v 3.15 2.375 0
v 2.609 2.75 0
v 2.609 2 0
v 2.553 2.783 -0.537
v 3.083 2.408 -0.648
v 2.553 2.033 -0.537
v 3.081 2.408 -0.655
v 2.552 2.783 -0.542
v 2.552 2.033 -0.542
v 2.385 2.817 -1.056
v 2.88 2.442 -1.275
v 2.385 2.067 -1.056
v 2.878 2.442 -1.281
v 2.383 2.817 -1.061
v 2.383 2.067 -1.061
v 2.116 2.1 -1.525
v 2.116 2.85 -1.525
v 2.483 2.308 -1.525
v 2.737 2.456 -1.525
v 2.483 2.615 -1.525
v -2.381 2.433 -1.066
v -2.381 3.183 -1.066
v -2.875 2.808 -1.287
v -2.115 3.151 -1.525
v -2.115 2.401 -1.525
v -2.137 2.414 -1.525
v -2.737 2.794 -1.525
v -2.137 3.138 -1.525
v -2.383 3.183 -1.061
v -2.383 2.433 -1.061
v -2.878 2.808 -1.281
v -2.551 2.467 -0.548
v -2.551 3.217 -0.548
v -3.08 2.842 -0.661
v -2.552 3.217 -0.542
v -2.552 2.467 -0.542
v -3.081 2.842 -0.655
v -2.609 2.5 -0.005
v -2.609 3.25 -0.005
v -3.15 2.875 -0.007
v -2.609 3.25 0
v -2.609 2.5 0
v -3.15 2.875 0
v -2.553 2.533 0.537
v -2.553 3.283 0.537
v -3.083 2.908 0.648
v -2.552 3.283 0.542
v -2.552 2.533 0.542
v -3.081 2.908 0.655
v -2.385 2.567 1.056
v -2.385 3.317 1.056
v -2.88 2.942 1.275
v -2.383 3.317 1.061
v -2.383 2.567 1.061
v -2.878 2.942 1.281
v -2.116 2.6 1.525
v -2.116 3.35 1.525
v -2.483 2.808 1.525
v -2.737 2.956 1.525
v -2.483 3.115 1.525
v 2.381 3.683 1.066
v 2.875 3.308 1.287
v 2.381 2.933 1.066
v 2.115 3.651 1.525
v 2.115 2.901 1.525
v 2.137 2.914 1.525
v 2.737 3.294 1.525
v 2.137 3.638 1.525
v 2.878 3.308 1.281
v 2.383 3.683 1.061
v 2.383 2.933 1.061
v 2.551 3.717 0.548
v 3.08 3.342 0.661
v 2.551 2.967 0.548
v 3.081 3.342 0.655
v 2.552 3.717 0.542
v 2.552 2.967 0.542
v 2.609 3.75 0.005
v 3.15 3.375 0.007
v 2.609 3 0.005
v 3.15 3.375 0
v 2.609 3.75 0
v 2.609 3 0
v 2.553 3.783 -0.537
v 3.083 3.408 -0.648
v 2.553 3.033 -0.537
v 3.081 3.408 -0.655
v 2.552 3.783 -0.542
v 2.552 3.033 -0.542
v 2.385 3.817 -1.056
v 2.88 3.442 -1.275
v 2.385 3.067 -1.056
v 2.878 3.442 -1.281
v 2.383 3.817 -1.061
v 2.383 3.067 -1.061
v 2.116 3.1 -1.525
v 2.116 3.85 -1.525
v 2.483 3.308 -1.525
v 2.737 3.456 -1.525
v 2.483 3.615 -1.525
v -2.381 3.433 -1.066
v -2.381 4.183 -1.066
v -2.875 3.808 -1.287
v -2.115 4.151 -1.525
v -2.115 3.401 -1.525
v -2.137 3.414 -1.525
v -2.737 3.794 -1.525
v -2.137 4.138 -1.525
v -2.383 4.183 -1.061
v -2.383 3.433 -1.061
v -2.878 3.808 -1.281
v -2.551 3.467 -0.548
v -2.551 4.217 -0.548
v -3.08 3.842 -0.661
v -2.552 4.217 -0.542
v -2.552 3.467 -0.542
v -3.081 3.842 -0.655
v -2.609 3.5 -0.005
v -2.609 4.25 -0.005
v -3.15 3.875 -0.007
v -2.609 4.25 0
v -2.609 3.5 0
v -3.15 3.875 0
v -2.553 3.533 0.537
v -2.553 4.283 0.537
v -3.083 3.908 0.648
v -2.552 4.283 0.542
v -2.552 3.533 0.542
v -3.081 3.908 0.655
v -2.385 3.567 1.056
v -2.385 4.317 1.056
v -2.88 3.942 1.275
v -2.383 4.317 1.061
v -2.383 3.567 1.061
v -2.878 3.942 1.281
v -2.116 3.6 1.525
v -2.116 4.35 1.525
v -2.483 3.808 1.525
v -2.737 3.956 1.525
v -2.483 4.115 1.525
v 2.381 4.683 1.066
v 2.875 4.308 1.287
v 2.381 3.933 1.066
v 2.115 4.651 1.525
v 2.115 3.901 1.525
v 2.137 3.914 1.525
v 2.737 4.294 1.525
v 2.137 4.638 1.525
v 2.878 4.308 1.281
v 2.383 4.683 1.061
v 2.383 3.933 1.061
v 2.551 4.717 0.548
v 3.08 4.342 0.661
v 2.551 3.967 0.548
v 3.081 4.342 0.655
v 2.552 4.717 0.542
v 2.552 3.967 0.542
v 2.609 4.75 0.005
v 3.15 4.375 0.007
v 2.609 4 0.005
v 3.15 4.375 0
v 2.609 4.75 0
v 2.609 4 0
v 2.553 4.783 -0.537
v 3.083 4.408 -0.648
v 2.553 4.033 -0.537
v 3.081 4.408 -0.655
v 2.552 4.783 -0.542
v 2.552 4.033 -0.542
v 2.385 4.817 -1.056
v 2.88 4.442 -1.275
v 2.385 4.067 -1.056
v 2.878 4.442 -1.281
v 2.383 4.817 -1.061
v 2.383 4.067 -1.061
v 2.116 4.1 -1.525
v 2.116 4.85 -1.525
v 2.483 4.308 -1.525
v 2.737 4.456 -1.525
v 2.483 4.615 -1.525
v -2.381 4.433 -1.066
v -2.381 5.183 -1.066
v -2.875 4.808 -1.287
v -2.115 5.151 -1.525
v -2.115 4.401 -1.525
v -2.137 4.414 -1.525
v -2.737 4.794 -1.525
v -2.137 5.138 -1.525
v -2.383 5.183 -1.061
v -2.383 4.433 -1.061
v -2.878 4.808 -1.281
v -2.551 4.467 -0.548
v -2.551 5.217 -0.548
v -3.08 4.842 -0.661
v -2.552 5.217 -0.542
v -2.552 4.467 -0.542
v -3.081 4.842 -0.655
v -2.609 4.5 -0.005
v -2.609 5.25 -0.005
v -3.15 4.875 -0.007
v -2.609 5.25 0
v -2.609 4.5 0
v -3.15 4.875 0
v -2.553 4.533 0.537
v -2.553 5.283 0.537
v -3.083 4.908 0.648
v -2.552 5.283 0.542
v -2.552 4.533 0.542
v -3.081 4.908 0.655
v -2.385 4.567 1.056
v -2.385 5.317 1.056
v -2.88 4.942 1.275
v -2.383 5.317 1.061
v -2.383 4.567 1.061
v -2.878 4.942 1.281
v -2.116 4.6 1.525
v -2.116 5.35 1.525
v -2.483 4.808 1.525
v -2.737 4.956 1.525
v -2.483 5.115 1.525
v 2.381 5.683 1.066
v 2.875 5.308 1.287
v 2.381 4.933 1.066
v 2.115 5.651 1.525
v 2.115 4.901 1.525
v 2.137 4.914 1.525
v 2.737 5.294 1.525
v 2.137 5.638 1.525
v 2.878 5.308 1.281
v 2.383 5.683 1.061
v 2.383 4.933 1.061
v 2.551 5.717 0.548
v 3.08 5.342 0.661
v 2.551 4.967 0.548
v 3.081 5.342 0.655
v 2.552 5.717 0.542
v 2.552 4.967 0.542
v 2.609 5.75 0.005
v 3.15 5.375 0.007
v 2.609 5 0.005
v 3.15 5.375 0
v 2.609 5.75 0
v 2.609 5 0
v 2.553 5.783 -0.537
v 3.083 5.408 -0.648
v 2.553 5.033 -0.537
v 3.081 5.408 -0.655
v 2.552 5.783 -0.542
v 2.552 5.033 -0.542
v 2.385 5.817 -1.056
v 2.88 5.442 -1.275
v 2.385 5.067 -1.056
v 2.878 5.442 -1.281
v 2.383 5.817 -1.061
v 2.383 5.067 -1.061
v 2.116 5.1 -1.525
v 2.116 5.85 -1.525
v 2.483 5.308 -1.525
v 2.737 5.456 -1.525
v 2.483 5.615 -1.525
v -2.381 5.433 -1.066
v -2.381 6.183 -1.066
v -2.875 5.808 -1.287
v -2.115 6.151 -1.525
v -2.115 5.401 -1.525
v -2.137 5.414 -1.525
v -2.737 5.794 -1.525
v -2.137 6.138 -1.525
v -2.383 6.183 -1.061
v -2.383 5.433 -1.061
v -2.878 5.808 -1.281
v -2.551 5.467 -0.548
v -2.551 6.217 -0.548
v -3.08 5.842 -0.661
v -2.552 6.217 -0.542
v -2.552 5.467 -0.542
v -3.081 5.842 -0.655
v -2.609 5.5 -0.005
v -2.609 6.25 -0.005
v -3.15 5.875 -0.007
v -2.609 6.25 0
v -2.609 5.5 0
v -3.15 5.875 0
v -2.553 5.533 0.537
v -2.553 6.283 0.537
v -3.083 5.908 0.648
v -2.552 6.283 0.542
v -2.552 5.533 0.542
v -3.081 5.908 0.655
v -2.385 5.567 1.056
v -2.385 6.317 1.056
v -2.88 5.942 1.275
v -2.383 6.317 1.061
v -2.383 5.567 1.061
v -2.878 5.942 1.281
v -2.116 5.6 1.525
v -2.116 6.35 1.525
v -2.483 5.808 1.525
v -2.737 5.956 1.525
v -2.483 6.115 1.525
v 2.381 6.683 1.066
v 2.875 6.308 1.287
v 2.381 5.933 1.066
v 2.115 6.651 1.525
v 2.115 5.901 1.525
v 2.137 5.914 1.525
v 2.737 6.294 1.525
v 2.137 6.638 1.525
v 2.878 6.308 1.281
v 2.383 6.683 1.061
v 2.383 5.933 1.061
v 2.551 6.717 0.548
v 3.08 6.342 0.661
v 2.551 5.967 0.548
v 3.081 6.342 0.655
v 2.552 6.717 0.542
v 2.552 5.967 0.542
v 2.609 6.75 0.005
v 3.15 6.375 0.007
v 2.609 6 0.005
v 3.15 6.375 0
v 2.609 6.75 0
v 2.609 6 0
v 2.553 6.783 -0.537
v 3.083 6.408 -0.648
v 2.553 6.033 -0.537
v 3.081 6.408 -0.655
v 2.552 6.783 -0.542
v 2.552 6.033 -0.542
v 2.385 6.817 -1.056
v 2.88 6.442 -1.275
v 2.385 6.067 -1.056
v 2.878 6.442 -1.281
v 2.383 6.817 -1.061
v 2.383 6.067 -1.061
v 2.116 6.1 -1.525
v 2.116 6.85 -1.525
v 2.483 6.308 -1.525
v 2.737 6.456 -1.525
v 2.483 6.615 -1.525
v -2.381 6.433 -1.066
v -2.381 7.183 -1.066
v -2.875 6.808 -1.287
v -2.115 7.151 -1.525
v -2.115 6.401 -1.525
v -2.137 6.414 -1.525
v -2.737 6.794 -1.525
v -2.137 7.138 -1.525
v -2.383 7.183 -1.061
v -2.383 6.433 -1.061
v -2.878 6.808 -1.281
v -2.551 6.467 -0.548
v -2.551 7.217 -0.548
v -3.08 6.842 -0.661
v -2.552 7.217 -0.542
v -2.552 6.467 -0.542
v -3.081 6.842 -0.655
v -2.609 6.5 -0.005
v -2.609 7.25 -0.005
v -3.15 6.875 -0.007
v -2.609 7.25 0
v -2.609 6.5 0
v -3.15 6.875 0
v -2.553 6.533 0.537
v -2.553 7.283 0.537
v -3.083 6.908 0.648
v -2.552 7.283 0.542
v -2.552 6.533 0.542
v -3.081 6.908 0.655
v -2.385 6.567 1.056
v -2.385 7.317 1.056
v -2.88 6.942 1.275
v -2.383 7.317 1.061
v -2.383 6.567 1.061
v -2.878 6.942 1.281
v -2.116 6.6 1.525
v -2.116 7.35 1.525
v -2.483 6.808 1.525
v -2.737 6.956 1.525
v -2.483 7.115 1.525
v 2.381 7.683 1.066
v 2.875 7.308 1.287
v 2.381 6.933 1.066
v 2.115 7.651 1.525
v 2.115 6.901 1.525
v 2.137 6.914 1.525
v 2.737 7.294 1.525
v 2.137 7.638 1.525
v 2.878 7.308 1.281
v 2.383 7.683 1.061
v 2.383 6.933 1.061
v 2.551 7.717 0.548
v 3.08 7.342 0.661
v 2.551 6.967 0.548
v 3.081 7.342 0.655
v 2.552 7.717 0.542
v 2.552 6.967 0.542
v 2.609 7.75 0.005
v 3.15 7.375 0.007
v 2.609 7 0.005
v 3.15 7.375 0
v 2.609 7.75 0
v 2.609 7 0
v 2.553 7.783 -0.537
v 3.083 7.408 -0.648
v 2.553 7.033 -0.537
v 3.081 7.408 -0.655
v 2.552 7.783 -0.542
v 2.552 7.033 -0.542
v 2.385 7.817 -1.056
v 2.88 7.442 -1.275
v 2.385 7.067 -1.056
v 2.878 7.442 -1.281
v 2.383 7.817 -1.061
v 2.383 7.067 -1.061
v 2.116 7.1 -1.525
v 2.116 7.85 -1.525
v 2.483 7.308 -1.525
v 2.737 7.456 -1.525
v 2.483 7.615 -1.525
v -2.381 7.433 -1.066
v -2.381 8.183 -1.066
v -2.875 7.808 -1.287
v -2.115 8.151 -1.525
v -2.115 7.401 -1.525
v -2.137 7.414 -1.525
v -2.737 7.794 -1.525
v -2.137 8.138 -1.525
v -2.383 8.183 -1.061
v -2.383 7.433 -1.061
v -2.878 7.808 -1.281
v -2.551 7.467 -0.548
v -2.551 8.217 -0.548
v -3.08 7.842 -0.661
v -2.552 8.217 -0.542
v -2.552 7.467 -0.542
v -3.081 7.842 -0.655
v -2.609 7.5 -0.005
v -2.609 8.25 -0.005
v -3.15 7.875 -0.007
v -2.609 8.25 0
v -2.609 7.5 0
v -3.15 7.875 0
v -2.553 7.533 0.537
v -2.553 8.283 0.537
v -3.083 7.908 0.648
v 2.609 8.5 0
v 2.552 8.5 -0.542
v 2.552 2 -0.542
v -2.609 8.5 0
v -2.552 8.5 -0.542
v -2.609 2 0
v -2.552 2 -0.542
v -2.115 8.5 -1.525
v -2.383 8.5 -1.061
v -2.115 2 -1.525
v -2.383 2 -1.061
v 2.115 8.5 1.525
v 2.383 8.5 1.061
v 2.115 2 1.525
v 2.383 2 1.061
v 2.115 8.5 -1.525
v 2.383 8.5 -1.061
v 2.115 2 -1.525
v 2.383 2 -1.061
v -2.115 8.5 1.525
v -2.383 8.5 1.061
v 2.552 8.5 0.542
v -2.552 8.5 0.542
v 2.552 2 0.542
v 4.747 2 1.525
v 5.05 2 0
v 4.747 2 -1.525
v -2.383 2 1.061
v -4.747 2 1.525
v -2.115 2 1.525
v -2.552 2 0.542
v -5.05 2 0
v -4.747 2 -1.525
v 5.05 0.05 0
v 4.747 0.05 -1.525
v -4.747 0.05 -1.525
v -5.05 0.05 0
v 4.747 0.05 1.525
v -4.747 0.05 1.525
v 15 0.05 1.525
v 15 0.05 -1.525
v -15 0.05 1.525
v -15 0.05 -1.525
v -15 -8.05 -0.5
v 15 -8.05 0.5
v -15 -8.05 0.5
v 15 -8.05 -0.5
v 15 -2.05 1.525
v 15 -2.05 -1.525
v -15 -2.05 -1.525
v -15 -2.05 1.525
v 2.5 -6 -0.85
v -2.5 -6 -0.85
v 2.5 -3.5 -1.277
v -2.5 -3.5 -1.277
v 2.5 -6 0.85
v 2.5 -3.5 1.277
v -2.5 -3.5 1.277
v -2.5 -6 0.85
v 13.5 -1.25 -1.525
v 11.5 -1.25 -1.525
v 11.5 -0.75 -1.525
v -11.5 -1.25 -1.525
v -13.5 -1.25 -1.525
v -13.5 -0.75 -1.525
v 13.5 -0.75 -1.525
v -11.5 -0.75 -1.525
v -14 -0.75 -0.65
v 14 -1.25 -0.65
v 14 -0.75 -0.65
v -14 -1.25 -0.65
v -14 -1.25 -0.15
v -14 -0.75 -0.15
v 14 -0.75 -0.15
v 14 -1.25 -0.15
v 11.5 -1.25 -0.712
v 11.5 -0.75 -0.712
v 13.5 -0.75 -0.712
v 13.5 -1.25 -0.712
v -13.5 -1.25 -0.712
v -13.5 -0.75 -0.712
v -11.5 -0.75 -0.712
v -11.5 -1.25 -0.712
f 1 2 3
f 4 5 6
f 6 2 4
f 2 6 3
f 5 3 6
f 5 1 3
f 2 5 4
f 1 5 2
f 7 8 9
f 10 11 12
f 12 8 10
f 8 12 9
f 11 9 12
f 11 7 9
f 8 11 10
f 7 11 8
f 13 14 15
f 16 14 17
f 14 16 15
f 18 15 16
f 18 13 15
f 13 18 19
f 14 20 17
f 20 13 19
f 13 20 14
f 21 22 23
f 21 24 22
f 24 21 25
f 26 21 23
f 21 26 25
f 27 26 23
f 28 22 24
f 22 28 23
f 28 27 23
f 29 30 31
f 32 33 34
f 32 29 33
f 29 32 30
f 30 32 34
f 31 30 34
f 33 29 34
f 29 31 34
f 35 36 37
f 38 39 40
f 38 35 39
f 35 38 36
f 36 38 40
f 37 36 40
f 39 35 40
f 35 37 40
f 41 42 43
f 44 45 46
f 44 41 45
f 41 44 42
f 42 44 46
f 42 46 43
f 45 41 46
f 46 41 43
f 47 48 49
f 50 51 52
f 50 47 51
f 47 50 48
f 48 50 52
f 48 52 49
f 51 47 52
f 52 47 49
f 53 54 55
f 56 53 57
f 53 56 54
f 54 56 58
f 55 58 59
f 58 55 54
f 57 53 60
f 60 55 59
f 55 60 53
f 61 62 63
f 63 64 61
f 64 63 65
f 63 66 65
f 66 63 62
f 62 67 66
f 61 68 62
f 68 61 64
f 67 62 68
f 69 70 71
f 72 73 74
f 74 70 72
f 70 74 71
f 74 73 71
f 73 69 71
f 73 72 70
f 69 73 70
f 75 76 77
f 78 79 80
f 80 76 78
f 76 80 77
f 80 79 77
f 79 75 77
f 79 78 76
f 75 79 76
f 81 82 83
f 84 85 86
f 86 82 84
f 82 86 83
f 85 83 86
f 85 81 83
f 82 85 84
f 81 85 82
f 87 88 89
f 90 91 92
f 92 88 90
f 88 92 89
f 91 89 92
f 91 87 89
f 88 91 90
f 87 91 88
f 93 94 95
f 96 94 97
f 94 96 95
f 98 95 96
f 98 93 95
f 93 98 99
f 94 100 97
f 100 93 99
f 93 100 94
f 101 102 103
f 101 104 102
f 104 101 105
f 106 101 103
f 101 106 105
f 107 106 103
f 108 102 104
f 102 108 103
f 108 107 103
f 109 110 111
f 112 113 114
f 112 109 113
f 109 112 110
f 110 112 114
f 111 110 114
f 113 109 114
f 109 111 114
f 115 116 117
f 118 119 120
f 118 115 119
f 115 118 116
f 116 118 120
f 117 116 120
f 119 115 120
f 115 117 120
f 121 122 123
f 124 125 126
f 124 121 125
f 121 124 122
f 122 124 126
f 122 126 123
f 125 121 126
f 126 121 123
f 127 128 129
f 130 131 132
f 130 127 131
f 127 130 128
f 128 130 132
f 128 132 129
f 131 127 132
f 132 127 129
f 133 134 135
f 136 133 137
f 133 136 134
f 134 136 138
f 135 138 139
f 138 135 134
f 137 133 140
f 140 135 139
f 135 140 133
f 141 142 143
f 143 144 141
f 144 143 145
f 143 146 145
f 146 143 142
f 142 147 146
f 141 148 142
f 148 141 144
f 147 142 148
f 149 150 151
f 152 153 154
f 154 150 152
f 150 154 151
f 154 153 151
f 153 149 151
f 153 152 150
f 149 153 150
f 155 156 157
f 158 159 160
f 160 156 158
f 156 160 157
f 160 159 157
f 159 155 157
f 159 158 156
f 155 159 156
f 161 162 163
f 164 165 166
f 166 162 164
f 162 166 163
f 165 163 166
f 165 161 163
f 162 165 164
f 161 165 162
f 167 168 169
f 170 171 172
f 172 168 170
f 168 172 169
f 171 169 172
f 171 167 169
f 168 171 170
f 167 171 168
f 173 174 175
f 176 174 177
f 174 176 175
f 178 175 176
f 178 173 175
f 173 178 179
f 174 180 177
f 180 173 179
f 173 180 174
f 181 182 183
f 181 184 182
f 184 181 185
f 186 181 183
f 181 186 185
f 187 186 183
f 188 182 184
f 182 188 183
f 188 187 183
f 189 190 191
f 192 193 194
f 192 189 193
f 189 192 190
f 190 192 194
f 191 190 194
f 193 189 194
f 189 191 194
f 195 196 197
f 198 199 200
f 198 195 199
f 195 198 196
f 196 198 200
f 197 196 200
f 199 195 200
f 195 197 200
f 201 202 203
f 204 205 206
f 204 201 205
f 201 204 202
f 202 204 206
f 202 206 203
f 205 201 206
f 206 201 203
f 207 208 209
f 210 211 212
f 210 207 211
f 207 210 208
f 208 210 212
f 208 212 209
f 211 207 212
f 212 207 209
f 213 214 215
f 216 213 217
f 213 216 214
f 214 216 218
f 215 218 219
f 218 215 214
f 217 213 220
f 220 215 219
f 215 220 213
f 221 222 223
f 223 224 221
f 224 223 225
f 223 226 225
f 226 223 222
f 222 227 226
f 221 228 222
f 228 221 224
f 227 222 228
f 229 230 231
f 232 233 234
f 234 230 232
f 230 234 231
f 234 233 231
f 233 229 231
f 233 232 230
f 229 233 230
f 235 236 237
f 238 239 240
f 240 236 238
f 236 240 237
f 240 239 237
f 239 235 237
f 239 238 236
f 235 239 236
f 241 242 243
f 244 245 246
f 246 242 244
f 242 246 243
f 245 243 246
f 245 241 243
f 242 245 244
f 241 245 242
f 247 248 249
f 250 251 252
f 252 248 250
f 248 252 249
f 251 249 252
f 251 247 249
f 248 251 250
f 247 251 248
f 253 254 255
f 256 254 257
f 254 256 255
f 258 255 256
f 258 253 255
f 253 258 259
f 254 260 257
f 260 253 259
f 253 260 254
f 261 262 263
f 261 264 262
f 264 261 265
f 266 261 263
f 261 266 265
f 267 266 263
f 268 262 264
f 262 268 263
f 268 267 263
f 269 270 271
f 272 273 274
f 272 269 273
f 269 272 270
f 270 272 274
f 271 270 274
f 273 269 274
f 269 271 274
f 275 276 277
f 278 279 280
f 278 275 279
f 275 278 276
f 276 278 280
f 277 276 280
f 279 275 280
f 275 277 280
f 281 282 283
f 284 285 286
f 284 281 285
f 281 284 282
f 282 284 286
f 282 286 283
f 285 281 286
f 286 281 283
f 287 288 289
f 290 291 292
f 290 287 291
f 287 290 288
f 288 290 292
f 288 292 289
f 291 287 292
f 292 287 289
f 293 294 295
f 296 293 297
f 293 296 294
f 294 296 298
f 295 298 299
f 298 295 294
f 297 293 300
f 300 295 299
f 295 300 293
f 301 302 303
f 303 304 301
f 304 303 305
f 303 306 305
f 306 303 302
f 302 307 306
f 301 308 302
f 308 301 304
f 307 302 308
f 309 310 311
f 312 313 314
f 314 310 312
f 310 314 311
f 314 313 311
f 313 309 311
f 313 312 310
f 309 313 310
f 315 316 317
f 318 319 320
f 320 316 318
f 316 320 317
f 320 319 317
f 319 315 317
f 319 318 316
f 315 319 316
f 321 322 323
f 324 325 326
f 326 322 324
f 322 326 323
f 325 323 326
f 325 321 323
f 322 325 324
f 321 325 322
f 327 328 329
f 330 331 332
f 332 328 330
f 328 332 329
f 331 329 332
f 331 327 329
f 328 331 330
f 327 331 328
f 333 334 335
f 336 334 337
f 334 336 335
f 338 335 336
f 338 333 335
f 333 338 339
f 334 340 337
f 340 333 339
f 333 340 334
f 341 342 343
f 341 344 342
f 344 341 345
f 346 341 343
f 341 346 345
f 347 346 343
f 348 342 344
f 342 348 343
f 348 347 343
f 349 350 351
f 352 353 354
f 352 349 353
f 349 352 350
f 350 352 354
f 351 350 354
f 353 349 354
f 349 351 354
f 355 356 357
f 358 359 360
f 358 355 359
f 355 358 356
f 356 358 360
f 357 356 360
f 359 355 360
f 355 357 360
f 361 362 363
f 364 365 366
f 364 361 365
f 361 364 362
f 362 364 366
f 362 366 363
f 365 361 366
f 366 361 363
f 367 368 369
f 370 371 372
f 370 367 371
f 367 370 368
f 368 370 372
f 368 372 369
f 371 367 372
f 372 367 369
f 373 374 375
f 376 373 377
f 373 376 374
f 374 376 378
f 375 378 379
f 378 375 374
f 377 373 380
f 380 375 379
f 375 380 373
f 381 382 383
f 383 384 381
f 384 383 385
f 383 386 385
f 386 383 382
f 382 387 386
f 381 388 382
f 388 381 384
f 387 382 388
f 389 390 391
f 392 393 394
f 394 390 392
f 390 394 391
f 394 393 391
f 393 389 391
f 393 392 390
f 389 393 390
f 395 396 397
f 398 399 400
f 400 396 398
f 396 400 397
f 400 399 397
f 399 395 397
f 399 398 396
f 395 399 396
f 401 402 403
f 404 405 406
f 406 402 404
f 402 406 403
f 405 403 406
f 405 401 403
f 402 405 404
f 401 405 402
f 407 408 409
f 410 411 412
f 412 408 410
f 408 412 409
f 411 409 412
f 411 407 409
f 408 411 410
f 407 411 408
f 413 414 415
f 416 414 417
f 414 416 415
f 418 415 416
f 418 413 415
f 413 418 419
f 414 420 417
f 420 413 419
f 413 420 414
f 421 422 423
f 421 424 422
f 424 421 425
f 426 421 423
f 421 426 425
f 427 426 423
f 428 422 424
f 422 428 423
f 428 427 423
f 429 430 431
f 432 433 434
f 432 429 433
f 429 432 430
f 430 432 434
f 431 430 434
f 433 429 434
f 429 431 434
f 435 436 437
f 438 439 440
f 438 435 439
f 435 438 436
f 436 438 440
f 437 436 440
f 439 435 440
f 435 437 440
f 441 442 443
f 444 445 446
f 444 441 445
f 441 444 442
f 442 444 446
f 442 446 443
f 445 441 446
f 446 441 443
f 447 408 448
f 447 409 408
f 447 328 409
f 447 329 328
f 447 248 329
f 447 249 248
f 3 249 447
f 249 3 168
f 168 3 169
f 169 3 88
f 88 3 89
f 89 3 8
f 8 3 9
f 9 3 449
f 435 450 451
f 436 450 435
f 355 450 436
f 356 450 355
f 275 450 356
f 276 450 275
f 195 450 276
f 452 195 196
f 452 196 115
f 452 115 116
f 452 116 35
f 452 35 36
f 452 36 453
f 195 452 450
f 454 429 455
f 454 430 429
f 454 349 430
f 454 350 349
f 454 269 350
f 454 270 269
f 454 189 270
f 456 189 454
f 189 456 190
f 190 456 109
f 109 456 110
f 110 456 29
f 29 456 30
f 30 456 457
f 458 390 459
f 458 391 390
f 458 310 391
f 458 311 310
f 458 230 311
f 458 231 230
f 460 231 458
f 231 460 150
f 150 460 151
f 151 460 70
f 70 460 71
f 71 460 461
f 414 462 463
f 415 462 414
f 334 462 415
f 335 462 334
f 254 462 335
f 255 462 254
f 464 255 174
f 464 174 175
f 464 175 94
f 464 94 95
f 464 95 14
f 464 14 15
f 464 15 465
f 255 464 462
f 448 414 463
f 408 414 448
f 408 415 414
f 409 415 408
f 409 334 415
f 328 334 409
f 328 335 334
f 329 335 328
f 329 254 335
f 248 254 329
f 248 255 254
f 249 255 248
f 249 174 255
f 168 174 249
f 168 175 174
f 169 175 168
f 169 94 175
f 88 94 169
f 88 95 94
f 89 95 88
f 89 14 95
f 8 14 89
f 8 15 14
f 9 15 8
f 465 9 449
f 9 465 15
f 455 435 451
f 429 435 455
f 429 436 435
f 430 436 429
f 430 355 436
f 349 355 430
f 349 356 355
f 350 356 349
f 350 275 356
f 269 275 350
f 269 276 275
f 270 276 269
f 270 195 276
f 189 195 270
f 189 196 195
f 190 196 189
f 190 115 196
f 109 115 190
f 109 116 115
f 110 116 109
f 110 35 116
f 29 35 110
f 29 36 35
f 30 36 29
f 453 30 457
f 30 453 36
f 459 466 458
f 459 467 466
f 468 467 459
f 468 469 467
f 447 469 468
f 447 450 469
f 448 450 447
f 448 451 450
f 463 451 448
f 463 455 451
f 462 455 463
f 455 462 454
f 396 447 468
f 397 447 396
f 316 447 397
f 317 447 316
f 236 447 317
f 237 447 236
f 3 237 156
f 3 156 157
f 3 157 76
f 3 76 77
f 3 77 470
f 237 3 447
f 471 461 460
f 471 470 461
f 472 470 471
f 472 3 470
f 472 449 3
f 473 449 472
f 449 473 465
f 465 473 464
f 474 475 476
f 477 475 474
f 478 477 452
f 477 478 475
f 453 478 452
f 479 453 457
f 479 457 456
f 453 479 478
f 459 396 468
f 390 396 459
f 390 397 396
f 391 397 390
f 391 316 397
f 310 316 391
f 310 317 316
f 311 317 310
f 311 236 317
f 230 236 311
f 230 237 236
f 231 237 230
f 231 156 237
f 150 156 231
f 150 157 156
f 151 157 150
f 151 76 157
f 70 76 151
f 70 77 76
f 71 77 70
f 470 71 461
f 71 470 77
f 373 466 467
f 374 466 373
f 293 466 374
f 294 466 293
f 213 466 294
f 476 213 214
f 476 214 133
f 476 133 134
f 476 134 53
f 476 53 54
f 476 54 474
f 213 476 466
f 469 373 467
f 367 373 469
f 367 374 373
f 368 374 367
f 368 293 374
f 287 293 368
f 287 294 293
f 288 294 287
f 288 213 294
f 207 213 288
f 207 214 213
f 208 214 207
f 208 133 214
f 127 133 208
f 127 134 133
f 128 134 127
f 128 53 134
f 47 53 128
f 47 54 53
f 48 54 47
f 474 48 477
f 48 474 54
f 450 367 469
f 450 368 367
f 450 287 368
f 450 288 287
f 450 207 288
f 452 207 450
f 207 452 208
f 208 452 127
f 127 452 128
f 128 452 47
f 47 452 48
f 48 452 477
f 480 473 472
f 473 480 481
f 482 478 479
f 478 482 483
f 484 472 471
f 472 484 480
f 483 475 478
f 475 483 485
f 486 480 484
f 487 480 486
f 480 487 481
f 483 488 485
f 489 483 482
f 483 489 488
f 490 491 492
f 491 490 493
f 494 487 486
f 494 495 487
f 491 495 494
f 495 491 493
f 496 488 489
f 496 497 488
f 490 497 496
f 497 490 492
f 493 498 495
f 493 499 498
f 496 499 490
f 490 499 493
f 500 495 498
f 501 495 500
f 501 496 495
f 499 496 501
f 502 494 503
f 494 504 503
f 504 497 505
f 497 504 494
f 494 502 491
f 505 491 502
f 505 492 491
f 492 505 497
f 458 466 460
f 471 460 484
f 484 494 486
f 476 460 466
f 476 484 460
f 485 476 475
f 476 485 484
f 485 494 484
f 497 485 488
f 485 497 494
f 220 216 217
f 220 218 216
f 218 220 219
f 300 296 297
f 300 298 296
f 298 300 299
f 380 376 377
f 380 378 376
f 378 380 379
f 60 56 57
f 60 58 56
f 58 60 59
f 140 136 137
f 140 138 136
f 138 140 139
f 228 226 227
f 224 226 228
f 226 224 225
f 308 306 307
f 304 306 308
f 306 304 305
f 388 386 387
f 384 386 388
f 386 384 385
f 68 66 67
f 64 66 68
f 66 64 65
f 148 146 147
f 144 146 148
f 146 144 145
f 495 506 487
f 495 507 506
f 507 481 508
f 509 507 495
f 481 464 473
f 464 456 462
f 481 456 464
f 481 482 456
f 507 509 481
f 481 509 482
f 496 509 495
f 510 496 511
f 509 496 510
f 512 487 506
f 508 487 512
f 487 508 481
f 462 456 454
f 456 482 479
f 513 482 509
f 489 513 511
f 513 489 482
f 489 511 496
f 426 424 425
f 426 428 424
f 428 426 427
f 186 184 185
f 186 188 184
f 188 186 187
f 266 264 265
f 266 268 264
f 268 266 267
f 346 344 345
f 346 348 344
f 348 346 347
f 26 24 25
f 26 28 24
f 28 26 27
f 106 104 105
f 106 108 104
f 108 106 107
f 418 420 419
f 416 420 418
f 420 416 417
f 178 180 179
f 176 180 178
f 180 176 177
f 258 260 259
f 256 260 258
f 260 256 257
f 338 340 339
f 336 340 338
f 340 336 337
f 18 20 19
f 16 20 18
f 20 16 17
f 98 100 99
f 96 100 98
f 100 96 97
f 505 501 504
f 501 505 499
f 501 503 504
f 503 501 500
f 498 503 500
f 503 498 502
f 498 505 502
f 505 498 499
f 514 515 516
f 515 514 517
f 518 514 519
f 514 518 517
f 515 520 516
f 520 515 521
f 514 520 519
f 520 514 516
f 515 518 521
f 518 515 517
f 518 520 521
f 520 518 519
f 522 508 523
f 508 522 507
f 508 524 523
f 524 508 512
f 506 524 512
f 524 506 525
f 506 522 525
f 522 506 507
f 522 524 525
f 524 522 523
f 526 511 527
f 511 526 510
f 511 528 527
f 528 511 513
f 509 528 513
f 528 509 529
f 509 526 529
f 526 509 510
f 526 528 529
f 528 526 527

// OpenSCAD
use <lib/ISOThread.scad>
// Hand Twistable Loop

// Typical camera mounts are 3/4 inch or 1/4 inch
screwDia=6.35-0.25; // 6.35mm == 1/4 inch
screwLen=6;
screwWasherThickness=2;
screwWasherDiameter=screwDia+4;

flagLabel=0;
flagHead=6;
flagWidth=30;

loopCutHeight=2.5;
loopCutWidth=loopCutHeight*2;

layerHeight=0.3;

rotate([-90,0,0])
intersection()
{
    screwFlatCut=screwDia/2;
    union()
    {
         // Screw
        union()
        {
            translate([0,0,screwWasherThickness])
            {
                thread_out(screwDia,screwLen+0.5);
                thread_out_centre(screwDia+0.2,screwLen+0.5);
            }
            cylinder(d=screwWasherDiameter, h=screwWasherThickness);
            translate([0,0,screwWasherThickness+1/2])
                %cube([10,10,1], center=true);
        }
        difference()
        {
            // Head
            hull()
            {
                cube([flagWidth,screwFlatCut,0.1], center=true);
                translate([0,0,-(flagLabel+2)])
                    cube([flagWidth,screwFlatCut,0.1], center=true);
                translate([0,0,-(flagLabel+2)-flagHead])
                    cube([flagWidth,1,0.1], center=true);
            }
            // Loop
            translate([0,0,-(flagLabel+2)-flagHead+loopCutHeight/2+2])
                cube([loopCutWidth,screwFlatCut+1,loopCutHeight], center=true);
            // Paper Slot
            paperWindowW=flagWidth-6;
            paperThickness=0.8;
            translate([0,-1,-(flagLabel+2)/2])
                cube([paperWindowW,screwFlatCut,flagLabel-1], center=true);
            translate([0,0,-(flagLabel+2)/2])
                hull()
                {
                    cube([flagWidth-6,screwFlatCut-2,flagLabel-1], center=true);
                    translate([0,paperThickness/2,0])
                        cube([flagWidth-2,0.5,flagLabel+0.5], center=true);
                }
            // Paper Insert Slit
            translate([flagWidth/2-2.5,screwFlatCut/2,-(flagLabel-2)/2-2])
                cube([2,screwFlatCut/2+0.1,(flagLabel+0.5)], center=true);
            translate([-flagWidth/2+2.5,screwFlatCut/2,-(flagLabel-2)/2-2])
                cube([2,screwFlatCut/2+0.1,(flagLabel+0.5)], center=true);
            // Simulated paper model
            if(0)
            translate([0,screwFlatCut/2-1.5,-(flagLabel-2)/2-2])
                %cube([flagWidth-2, 0.1, flagLabel-0.1], center=true);
        }

        // Brim for more reliable printing if needed
        if (0)
        hull()
        {
            translate([0,screwFlatCut/2,screwLen+screwWasherThickness])
                cube([screwDia-2,layerHeight*2+0.1,0.01], center=true);
            translate([0,screwFlatCut/2,screwLen+10])
                cube([screwDia*2,layerHeight*2+0.1,0.01], center=true);
        }
        if (0)
        hull()
        {
            translate([0,screwFlatCut/2,0])
                cube([1,layerHeight*2+0.1,0.01], center=true);
            translate([0,screwFlatCut/2,-10])
                cube([3,layerHeight*2+0.1,0.01], center=true);
        }
    }

    // Cut for ease of printing
    cube([screwDia*2+flagWidth, screwFlatCut, screwLen*3+10+(flagLabel+2)+flagHead], center=true);
}
